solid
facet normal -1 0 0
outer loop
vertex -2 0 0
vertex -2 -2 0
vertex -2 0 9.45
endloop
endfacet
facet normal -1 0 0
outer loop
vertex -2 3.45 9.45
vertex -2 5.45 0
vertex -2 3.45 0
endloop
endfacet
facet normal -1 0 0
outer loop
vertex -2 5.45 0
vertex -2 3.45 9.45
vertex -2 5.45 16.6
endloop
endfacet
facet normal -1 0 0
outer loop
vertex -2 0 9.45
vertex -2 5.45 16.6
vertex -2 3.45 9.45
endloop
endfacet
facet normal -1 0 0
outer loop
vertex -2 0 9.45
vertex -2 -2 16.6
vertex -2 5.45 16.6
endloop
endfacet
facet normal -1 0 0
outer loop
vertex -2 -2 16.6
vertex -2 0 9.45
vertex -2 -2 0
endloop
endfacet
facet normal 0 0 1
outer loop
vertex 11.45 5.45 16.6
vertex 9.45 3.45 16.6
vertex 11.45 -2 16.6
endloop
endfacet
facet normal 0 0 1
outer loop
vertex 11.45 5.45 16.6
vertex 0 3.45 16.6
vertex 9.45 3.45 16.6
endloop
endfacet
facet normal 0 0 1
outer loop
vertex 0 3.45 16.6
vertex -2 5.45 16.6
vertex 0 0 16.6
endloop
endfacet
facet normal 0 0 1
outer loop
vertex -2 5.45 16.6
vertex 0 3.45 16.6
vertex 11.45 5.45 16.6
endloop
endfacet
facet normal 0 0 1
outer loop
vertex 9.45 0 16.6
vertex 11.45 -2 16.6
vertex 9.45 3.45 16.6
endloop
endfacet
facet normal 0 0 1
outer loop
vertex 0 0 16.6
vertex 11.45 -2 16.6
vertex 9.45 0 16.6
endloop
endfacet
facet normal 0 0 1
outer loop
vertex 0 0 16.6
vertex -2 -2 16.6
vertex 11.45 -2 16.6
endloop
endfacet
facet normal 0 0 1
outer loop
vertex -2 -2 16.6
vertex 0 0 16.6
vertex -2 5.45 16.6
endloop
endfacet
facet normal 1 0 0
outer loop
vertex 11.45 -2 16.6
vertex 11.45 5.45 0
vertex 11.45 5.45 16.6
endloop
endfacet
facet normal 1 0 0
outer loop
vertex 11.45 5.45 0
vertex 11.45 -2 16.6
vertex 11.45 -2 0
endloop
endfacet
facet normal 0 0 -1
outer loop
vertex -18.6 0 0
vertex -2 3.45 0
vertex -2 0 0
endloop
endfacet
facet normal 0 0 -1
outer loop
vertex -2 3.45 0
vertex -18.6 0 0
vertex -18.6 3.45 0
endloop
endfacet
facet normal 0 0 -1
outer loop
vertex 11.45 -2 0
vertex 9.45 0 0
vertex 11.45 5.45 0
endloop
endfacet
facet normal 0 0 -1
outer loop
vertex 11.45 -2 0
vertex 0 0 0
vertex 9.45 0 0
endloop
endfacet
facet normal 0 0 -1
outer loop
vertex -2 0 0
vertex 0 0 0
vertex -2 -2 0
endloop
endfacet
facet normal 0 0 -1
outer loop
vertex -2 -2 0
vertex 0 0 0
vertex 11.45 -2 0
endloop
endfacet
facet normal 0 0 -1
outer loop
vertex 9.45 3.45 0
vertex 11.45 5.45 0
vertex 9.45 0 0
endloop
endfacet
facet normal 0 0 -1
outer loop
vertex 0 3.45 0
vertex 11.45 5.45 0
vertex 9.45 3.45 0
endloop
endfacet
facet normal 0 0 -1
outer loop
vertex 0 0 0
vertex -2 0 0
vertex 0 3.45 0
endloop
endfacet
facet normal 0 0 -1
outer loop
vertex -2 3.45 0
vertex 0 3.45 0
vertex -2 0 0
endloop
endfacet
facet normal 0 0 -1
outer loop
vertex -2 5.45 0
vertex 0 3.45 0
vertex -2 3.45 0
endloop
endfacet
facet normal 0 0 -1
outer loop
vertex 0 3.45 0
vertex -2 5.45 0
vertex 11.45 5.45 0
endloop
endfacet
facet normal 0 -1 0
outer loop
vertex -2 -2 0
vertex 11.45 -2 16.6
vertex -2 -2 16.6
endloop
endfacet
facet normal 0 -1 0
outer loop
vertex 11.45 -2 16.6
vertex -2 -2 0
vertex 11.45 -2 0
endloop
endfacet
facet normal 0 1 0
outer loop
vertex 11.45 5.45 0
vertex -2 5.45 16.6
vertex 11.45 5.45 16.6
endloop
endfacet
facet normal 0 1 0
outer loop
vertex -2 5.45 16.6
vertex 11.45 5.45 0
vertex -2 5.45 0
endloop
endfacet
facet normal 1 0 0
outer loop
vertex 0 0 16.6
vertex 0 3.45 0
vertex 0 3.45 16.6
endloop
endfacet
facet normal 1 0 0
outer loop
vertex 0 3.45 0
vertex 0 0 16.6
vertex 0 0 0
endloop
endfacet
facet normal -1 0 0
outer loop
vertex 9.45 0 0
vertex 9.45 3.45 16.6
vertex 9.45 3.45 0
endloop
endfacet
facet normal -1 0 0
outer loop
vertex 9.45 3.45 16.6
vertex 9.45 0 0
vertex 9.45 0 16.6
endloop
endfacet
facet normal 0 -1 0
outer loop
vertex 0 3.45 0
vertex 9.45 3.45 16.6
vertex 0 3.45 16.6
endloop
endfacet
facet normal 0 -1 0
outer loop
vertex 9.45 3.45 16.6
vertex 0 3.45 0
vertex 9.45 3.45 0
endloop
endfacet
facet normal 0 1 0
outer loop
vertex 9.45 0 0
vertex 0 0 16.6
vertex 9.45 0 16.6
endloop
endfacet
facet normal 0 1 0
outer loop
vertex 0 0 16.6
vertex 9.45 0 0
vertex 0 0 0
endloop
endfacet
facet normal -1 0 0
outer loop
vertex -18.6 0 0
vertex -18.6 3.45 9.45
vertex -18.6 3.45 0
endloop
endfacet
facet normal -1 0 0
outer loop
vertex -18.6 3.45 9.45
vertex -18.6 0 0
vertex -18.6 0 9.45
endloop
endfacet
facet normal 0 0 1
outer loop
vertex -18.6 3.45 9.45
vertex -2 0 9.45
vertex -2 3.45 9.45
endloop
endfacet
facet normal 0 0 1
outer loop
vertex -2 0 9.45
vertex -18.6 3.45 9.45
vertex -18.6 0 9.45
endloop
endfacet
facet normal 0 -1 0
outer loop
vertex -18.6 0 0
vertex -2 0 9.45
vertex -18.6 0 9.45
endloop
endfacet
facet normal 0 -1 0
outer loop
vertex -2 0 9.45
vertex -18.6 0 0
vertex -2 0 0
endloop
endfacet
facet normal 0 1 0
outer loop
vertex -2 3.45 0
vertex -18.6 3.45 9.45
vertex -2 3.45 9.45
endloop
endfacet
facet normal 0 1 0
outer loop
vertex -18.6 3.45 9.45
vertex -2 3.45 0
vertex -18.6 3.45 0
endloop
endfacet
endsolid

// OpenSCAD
// ----- ----- Declaração de Variáveis ----- ----- //
folga=0.150;

px=9.15;
py=3.15;
pz1=16.3;
pz2=22.3;

esp=2;

// ----- ----- Declaração de Variáveis ----- ----- //

// ----- ----- MAIN ----- ----- //
difference(){
    translate([-esp,-esp,0])
    cube([px+2*folga+2*esp,py+2*folga+2*esp,pz1+2*folga]);
    #cube([px+2*folga,py+2*folga,pz1+2*folga]);
//translate([10,0,0])cube([px,py,pz2]);
}

translate([-esp,0,0])
rotate([0,-90,0])
cube([px+2*folga,py+2*folga,pz1+2*folga]);
